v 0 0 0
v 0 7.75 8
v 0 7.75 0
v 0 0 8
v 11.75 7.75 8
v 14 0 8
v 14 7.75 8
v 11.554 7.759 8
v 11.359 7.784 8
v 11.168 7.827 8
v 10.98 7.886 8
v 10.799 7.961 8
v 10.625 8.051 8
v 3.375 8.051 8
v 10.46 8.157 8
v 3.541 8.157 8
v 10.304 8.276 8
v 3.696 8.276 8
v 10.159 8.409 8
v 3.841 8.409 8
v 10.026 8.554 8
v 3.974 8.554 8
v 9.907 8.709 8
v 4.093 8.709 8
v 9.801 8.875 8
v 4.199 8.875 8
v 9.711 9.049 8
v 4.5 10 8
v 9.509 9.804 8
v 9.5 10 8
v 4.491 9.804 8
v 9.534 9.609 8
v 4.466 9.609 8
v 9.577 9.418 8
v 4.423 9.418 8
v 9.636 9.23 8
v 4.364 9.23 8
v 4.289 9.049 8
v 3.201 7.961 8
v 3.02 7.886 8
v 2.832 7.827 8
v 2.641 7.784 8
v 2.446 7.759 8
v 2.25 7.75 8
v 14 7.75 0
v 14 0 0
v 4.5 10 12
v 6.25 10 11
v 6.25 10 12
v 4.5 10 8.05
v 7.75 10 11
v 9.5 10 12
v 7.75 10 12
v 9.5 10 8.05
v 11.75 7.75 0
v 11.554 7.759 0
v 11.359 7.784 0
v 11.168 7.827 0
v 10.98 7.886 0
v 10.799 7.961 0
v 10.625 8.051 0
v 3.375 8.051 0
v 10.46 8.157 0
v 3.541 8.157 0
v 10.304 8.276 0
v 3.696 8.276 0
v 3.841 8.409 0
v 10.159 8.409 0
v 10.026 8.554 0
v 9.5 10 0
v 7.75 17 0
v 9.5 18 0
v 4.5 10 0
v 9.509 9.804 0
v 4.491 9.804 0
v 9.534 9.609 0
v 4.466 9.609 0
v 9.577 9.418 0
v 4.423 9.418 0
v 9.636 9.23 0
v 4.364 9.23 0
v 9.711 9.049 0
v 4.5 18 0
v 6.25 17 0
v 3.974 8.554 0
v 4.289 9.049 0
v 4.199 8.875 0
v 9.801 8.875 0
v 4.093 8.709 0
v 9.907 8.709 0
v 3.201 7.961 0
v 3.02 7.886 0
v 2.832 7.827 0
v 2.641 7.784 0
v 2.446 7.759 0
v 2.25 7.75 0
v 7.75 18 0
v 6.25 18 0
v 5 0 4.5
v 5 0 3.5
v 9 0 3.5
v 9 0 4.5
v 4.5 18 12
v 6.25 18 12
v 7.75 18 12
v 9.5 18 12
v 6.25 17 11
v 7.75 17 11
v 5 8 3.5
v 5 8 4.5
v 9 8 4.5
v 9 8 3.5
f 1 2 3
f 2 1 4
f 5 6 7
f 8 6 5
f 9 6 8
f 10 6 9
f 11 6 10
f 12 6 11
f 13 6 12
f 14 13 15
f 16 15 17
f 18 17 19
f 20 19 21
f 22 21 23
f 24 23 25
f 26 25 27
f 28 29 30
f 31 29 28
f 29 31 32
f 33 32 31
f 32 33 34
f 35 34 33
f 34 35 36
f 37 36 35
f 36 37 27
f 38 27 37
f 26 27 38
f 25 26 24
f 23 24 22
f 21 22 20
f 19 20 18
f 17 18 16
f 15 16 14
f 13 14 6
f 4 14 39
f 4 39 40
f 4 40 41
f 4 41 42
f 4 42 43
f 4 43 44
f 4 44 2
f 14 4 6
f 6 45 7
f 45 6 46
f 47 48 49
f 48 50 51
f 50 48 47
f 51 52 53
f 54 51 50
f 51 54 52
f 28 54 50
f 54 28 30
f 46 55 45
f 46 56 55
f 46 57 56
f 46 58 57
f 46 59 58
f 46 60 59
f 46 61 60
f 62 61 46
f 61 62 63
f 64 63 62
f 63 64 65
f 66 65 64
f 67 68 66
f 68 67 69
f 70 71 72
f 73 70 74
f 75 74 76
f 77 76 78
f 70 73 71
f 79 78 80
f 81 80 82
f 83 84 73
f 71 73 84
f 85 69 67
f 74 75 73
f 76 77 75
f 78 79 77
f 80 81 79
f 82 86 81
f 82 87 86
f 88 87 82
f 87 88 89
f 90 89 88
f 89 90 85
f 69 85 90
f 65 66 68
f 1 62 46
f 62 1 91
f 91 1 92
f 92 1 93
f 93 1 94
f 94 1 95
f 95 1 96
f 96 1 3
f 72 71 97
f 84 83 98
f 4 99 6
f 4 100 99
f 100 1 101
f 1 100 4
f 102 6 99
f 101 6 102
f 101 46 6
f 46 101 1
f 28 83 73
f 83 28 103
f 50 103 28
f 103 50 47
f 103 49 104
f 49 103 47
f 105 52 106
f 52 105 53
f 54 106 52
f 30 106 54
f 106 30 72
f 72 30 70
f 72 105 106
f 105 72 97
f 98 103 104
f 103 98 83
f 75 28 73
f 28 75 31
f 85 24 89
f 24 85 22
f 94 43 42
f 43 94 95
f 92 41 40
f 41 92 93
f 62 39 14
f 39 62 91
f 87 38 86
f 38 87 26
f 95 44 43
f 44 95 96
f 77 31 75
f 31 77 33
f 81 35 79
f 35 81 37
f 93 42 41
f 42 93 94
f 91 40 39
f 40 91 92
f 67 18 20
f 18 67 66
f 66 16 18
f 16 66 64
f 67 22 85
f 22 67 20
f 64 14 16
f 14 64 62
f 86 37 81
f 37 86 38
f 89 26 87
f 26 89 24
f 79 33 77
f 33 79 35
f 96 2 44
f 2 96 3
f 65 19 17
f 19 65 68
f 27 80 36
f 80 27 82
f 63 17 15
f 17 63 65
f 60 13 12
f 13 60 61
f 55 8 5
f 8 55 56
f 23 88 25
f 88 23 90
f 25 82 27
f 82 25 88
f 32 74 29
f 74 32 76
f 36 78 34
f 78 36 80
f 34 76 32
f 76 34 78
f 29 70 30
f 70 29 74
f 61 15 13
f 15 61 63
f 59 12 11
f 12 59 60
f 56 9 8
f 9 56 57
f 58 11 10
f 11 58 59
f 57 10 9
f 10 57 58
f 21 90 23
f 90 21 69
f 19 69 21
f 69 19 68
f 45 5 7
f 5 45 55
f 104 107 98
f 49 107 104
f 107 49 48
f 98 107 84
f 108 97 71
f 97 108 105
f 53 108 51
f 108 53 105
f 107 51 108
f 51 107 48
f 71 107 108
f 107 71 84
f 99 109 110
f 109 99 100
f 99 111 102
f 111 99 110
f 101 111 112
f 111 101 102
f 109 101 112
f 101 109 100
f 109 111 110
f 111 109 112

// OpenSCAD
$fa=5; $fs=0.1;

difference(){
	union(){
		cube([14, 10, 8]);
		translate([4.5, 10, 0]) cube([5, 8, 12]);
	}
	union(){
		
		// скругленное
		translate([2.25, 10, 4]) cylinder(h=8.1, r=2.25, center=true);
		translate([0, 10-2.25, 0]) cube([2.25, 2.25, 8.1]);
		translate([2.25+9.5, 10, 4]) cylinder(h=8.1, r=2.25, center=true);
		translate([9.5+2.25, 10-2.25, 0]) cube([2.25, 2.25, 8.1]);

		// прорезь в ручке
		translate([7, 14, 12-0.5]) cube([1.5, 10, 1], center=true);
		translate([7, 18-0.5, 6]) cube([1.5, 1, 12], center=true);

		// вырез под железяку
	    translate([7, 4, 4]) cube([4, 8, 1], center=true);

		
	}
}
